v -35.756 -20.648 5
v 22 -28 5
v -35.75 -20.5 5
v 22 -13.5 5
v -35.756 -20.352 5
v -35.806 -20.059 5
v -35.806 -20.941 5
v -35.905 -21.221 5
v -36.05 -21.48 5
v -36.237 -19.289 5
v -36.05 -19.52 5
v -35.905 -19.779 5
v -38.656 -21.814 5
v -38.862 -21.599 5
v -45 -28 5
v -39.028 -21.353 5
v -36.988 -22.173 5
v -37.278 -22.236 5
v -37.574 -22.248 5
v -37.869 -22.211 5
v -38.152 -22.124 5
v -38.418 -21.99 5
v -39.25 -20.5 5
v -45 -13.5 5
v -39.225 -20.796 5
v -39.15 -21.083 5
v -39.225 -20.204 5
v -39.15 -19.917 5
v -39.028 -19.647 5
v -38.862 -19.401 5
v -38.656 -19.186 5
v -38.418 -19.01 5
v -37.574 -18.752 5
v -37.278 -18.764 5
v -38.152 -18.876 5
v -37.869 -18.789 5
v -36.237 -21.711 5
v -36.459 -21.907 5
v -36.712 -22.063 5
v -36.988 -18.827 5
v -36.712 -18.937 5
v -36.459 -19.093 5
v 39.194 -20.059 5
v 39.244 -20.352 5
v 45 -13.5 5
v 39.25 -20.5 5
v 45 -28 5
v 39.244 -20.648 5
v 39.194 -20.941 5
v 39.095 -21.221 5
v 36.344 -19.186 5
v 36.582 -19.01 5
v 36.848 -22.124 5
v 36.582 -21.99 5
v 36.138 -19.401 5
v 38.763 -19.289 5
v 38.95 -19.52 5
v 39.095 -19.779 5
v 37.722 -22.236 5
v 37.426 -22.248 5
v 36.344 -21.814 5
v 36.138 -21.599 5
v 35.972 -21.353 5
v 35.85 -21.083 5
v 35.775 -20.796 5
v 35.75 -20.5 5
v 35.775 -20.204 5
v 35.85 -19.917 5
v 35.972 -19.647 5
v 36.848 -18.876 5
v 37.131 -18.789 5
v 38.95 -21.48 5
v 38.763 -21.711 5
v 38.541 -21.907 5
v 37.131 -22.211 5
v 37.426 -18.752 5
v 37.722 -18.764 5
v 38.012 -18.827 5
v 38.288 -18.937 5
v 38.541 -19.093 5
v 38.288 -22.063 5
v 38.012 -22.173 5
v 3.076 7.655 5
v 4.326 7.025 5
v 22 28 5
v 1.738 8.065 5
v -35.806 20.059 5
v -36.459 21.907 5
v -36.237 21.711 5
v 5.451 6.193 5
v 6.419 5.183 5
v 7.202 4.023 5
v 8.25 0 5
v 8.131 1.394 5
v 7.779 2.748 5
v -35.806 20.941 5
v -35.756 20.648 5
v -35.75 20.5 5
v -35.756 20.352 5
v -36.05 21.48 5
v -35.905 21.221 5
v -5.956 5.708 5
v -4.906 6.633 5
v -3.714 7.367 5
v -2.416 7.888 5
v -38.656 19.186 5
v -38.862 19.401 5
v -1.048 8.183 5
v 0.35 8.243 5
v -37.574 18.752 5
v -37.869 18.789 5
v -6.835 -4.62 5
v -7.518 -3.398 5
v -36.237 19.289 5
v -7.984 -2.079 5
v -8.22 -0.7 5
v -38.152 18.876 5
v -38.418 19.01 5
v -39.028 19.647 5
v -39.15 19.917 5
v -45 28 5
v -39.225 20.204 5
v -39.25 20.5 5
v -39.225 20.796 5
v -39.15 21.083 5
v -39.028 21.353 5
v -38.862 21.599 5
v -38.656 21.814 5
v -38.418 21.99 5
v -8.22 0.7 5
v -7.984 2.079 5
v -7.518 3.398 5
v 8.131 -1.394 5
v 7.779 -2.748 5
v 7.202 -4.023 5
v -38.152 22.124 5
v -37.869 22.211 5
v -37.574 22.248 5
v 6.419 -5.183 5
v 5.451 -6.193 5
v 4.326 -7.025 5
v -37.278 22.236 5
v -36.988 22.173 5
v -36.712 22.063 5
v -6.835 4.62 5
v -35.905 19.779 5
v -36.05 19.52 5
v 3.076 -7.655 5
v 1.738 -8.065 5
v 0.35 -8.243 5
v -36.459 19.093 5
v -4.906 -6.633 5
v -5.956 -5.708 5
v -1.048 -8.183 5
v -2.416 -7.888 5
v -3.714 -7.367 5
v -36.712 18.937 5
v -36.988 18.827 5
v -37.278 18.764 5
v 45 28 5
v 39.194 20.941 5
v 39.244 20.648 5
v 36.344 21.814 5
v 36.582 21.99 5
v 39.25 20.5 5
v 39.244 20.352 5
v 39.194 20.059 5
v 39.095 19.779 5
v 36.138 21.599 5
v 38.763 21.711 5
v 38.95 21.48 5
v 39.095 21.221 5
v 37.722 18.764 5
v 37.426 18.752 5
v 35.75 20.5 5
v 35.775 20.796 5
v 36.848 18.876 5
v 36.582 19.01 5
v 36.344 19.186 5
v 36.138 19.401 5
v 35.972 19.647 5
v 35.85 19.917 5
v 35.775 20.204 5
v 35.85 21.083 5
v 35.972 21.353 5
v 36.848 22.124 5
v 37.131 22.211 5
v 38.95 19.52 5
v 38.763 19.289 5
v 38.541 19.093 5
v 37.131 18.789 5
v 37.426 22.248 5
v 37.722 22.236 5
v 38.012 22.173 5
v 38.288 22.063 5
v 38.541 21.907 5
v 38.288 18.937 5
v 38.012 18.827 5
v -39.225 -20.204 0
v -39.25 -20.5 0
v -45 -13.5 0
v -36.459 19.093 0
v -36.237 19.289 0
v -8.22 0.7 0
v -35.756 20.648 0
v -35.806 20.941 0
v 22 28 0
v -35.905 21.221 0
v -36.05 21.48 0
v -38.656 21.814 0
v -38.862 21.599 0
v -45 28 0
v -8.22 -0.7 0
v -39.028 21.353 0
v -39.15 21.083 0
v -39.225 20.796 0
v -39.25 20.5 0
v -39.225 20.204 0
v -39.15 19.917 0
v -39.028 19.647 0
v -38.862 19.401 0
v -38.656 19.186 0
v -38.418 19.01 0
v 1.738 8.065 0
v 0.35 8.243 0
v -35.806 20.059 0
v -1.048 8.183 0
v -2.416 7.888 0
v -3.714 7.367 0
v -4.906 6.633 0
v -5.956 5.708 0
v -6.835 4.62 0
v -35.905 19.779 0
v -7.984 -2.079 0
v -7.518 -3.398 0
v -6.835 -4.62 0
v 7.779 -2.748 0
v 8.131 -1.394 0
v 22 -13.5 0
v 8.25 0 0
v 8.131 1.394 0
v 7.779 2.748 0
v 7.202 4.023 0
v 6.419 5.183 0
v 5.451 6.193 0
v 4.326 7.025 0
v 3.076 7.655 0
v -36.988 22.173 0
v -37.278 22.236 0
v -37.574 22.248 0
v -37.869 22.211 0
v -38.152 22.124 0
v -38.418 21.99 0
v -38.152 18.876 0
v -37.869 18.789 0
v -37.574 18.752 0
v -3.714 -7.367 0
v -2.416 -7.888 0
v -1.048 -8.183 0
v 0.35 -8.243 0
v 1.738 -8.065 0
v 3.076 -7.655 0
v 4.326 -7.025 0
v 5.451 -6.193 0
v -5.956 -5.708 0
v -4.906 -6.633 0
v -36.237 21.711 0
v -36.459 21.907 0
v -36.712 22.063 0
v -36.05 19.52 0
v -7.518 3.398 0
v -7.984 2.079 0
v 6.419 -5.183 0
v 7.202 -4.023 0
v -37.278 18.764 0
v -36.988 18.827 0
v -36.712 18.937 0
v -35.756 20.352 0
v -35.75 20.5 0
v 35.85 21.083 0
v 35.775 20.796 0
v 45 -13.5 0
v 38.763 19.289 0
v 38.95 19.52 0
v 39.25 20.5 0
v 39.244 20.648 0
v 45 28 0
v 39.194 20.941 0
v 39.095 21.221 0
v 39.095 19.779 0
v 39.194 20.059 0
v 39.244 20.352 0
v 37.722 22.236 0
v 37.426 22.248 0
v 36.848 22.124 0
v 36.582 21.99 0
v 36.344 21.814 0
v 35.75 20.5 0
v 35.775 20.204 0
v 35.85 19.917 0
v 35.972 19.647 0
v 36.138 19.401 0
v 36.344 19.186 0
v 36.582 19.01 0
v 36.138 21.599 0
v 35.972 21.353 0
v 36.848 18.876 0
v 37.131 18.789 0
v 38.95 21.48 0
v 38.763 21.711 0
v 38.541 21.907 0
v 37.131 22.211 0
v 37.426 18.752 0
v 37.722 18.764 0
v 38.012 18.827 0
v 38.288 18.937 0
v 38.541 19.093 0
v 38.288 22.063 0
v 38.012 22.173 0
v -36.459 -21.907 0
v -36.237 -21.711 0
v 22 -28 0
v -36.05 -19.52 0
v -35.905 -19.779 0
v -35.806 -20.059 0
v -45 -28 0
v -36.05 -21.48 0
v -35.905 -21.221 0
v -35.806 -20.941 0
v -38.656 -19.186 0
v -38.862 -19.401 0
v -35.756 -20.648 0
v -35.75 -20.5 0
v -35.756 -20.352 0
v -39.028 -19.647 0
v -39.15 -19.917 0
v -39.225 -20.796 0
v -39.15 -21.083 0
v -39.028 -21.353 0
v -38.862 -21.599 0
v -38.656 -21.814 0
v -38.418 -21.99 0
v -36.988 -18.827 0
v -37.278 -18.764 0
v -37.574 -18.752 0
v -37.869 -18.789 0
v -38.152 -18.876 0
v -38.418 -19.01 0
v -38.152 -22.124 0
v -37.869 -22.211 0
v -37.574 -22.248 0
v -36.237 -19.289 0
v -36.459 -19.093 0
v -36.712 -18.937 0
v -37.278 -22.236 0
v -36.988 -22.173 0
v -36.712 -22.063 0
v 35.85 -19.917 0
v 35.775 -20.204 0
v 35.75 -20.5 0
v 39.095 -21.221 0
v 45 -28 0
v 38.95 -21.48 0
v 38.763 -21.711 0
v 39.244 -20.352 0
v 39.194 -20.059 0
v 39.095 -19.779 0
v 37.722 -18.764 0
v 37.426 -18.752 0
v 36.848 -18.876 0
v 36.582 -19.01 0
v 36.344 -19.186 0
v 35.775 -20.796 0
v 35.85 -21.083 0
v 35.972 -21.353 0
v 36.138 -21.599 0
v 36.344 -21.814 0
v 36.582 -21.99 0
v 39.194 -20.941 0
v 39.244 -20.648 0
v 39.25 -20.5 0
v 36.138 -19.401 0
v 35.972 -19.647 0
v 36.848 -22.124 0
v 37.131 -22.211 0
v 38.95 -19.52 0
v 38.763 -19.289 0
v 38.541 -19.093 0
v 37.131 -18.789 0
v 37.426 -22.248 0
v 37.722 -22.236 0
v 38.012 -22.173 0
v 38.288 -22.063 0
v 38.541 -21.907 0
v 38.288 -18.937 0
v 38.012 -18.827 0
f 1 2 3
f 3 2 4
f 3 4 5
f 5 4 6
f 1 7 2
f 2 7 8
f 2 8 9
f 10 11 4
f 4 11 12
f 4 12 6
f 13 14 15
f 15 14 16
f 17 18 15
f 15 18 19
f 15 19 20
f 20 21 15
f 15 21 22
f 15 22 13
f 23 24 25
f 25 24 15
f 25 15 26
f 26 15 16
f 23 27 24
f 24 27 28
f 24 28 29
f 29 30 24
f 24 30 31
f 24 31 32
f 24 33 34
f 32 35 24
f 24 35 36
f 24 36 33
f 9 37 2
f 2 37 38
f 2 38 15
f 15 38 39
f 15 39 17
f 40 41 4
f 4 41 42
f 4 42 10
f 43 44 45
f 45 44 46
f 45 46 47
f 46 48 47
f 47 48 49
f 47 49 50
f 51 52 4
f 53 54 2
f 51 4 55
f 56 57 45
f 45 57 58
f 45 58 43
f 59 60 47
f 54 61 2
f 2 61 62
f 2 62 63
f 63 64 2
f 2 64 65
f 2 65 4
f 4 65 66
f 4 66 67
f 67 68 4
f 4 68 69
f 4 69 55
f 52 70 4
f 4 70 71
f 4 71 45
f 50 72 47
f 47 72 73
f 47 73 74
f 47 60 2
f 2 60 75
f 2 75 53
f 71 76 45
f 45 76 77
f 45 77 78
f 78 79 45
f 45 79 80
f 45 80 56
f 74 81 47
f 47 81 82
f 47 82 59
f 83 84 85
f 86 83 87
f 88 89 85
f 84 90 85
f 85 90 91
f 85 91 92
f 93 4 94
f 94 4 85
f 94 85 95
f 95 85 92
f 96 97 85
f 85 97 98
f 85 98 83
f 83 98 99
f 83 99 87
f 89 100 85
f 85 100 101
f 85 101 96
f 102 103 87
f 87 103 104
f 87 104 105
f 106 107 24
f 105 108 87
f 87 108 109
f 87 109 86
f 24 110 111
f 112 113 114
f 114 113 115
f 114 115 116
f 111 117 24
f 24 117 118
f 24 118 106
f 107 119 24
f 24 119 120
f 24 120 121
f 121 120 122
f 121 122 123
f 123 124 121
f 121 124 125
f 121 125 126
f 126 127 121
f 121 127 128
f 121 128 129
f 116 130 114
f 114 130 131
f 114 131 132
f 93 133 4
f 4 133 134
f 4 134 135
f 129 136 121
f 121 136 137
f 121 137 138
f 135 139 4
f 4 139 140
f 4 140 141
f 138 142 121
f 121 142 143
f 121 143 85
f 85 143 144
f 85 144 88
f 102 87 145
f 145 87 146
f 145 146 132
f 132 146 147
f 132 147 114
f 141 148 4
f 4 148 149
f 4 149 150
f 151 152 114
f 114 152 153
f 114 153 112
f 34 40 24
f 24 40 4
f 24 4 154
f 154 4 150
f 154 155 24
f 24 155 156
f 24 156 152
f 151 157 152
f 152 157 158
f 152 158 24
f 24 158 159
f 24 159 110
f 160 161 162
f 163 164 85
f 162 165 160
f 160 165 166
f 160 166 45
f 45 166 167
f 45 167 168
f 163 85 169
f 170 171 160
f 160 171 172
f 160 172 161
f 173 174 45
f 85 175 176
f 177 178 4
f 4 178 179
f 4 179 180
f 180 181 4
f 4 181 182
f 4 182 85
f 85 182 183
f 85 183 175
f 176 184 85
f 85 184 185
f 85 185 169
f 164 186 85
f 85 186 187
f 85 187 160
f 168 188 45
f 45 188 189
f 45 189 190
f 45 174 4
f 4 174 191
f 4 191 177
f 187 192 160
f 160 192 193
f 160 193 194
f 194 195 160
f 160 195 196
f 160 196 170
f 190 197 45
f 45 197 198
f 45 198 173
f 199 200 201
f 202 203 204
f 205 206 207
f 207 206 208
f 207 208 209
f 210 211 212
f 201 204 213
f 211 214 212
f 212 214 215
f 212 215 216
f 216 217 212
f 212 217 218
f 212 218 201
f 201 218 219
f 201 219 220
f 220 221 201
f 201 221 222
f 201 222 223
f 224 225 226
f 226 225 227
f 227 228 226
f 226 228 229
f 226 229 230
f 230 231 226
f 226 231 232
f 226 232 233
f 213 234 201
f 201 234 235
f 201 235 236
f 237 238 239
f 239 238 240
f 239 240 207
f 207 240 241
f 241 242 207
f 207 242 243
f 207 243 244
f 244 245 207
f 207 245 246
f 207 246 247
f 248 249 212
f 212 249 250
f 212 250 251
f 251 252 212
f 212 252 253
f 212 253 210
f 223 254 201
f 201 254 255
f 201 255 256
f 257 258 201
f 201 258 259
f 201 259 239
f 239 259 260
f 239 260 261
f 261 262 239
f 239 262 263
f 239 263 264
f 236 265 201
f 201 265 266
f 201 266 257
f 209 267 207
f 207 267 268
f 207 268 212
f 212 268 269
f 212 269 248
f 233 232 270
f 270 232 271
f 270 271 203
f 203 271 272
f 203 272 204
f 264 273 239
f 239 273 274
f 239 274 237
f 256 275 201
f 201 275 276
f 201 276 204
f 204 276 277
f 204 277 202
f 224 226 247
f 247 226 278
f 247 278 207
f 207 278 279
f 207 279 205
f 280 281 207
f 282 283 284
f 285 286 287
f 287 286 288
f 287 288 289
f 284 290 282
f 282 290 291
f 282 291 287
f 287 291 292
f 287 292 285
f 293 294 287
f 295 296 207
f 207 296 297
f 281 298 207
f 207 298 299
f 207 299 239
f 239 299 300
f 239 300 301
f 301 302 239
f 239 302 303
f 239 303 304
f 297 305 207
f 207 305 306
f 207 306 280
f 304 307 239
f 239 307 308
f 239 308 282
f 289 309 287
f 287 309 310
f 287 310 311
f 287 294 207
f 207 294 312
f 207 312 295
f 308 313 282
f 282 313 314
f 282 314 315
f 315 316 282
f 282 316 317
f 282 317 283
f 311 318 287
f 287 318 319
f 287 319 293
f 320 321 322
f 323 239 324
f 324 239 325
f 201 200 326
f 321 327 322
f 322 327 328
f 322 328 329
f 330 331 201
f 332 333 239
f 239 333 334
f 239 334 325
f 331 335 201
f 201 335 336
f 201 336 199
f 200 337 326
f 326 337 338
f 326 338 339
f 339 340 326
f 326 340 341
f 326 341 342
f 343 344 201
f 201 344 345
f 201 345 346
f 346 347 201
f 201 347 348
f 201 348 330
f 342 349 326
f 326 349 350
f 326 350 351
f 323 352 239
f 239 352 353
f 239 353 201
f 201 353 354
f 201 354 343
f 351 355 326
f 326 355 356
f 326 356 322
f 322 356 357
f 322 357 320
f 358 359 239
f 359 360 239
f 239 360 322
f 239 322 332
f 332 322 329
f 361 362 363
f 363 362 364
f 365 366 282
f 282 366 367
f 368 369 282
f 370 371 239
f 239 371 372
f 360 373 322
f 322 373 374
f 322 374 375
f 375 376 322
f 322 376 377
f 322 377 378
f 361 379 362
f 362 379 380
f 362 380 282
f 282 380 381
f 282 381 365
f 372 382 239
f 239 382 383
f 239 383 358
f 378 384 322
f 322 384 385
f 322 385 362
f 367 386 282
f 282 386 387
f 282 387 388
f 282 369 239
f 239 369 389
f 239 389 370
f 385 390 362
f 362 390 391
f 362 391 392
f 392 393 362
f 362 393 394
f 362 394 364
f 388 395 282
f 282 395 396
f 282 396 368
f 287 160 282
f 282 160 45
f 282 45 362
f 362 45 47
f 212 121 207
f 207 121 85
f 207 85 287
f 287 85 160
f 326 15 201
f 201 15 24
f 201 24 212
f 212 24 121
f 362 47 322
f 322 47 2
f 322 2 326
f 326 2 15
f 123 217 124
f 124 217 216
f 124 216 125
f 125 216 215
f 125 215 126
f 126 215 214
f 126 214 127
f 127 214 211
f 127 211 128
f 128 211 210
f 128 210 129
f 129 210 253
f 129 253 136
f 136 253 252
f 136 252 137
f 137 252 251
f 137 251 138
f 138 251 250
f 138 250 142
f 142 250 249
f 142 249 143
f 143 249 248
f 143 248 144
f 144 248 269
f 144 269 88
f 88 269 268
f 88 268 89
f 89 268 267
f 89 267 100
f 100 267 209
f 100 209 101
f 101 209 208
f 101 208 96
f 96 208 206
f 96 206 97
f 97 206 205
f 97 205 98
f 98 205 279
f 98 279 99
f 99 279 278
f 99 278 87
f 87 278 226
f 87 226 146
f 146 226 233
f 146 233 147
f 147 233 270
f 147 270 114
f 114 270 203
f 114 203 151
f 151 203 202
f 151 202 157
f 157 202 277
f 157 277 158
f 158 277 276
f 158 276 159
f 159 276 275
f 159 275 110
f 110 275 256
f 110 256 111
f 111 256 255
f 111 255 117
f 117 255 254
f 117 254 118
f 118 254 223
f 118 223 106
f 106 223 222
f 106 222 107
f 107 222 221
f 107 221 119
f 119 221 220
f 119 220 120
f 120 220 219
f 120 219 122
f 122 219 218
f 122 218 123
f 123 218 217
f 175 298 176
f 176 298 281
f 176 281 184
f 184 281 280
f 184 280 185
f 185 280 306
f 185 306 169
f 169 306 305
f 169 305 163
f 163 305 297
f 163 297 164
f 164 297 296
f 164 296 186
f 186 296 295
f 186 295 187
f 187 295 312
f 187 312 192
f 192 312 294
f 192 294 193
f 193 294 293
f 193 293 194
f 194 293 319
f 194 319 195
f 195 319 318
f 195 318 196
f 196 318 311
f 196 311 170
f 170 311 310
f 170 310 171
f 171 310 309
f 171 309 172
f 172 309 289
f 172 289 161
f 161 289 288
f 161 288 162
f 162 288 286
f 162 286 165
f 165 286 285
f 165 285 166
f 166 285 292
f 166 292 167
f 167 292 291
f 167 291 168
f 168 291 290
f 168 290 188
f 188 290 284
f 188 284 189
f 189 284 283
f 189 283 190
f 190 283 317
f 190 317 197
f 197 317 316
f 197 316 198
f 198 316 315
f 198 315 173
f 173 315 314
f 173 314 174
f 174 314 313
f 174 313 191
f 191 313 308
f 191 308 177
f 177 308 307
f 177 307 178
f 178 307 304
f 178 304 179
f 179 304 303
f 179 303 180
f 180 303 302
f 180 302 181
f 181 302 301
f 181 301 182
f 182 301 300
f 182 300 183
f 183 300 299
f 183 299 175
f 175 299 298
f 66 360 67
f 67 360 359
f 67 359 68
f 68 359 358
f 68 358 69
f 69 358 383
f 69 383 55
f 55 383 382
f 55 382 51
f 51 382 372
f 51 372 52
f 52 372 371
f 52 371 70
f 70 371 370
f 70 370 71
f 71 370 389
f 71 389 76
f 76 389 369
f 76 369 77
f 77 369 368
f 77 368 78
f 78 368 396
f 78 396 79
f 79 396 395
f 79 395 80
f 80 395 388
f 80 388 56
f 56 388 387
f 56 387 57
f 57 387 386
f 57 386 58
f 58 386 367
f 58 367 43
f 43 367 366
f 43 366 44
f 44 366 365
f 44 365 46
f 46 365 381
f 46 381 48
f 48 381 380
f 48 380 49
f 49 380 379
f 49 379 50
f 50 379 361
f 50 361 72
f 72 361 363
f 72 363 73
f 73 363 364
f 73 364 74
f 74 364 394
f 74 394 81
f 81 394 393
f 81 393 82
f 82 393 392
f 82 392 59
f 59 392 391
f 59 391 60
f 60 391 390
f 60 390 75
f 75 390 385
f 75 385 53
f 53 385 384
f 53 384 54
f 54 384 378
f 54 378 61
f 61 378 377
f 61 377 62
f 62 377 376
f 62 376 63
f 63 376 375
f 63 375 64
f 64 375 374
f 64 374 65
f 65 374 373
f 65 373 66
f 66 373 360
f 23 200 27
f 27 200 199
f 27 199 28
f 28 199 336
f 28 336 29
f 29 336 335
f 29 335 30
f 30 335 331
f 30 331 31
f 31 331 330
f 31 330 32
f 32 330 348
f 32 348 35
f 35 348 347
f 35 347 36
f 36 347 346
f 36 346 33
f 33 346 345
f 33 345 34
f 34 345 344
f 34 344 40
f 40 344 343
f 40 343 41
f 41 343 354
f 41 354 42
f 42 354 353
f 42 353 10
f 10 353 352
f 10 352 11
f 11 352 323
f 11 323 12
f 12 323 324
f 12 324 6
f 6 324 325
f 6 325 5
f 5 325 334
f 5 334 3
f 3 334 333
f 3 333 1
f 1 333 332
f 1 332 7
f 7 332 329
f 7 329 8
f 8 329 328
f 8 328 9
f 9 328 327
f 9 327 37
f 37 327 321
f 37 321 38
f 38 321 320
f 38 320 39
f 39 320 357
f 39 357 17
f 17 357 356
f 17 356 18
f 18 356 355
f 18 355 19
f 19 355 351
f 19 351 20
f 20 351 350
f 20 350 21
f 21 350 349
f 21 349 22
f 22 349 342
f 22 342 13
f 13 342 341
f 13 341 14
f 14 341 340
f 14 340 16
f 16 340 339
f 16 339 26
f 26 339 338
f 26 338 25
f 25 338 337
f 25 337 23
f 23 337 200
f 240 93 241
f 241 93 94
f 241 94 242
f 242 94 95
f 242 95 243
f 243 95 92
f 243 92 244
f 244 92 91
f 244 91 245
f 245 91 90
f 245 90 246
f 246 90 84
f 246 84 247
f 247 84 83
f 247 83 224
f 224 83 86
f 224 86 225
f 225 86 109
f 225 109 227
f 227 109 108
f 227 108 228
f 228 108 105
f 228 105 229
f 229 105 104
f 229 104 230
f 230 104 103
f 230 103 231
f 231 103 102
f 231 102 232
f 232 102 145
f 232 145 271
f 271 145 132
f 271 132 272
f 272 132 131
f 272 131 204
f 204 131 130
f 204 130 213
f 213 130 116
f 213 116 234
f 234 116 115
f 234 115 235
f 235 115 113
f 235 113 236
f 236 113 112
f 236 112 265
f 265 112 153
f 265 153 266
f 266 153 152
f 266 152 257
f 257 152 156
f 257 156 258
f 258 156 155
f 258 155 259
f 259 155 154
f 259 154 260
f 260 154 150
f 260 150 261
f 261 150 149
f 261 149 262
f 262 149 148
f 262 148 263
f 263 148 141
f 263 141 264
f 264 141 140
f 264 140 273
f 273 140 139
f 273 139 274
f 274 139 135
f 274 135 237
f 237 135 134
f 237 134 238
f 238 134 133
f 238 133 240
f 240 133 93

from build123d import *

# Parameters (mm, degrees)
SKETCH_1_W          = 90
SKETCH_1_H          = 56
SKETCH_1_R          = 1.75
EXTRUDE_1_DEPTH     = 5
SKETCH_2_R          = 8.25
CUT_EXTRUDE_1_DEPTH = 5


with BuildPart() as part:
    # ｽｹｯﾁ1 → ﾎﾞｽ - 押し出し1 (new body)
    with BuildSketch(Plane.XY):
        Rectangle(SKETCH_1_W, SKETCH_1_H)
        with Locations((-37.5, 20.5)):
            Circle(SKETCH_1_R, mode=Mode.SUBTRACT)
        with Locations((37.5, 20.5)):
            Circle(SKETCH_1_R, mode=Mode.SUBTRACT)
        with Locations((37.5, -20.5)):
            Circle(SKETCH_1_R, mode=Mode.SUBTRACT)
        with Locations((-37.5, -20.5)):
            Circle(SKETCH_1_R, mode=Mode.SUBTRACT)
    extrude(amount=EXTRUDE_1_DEPTH)

    # ｽｹｯﾁ2 → ｶｯﾄ - 押し出し1 (cut)
    with BuildSketch(Plane.XY.offset(5)):
        Circle(SKETCH_2_R)
    extrude(amount=-CUT_EXTRUDE_1_DEPTH, mode=Mode.SUBTRACT)


solid = part.part
